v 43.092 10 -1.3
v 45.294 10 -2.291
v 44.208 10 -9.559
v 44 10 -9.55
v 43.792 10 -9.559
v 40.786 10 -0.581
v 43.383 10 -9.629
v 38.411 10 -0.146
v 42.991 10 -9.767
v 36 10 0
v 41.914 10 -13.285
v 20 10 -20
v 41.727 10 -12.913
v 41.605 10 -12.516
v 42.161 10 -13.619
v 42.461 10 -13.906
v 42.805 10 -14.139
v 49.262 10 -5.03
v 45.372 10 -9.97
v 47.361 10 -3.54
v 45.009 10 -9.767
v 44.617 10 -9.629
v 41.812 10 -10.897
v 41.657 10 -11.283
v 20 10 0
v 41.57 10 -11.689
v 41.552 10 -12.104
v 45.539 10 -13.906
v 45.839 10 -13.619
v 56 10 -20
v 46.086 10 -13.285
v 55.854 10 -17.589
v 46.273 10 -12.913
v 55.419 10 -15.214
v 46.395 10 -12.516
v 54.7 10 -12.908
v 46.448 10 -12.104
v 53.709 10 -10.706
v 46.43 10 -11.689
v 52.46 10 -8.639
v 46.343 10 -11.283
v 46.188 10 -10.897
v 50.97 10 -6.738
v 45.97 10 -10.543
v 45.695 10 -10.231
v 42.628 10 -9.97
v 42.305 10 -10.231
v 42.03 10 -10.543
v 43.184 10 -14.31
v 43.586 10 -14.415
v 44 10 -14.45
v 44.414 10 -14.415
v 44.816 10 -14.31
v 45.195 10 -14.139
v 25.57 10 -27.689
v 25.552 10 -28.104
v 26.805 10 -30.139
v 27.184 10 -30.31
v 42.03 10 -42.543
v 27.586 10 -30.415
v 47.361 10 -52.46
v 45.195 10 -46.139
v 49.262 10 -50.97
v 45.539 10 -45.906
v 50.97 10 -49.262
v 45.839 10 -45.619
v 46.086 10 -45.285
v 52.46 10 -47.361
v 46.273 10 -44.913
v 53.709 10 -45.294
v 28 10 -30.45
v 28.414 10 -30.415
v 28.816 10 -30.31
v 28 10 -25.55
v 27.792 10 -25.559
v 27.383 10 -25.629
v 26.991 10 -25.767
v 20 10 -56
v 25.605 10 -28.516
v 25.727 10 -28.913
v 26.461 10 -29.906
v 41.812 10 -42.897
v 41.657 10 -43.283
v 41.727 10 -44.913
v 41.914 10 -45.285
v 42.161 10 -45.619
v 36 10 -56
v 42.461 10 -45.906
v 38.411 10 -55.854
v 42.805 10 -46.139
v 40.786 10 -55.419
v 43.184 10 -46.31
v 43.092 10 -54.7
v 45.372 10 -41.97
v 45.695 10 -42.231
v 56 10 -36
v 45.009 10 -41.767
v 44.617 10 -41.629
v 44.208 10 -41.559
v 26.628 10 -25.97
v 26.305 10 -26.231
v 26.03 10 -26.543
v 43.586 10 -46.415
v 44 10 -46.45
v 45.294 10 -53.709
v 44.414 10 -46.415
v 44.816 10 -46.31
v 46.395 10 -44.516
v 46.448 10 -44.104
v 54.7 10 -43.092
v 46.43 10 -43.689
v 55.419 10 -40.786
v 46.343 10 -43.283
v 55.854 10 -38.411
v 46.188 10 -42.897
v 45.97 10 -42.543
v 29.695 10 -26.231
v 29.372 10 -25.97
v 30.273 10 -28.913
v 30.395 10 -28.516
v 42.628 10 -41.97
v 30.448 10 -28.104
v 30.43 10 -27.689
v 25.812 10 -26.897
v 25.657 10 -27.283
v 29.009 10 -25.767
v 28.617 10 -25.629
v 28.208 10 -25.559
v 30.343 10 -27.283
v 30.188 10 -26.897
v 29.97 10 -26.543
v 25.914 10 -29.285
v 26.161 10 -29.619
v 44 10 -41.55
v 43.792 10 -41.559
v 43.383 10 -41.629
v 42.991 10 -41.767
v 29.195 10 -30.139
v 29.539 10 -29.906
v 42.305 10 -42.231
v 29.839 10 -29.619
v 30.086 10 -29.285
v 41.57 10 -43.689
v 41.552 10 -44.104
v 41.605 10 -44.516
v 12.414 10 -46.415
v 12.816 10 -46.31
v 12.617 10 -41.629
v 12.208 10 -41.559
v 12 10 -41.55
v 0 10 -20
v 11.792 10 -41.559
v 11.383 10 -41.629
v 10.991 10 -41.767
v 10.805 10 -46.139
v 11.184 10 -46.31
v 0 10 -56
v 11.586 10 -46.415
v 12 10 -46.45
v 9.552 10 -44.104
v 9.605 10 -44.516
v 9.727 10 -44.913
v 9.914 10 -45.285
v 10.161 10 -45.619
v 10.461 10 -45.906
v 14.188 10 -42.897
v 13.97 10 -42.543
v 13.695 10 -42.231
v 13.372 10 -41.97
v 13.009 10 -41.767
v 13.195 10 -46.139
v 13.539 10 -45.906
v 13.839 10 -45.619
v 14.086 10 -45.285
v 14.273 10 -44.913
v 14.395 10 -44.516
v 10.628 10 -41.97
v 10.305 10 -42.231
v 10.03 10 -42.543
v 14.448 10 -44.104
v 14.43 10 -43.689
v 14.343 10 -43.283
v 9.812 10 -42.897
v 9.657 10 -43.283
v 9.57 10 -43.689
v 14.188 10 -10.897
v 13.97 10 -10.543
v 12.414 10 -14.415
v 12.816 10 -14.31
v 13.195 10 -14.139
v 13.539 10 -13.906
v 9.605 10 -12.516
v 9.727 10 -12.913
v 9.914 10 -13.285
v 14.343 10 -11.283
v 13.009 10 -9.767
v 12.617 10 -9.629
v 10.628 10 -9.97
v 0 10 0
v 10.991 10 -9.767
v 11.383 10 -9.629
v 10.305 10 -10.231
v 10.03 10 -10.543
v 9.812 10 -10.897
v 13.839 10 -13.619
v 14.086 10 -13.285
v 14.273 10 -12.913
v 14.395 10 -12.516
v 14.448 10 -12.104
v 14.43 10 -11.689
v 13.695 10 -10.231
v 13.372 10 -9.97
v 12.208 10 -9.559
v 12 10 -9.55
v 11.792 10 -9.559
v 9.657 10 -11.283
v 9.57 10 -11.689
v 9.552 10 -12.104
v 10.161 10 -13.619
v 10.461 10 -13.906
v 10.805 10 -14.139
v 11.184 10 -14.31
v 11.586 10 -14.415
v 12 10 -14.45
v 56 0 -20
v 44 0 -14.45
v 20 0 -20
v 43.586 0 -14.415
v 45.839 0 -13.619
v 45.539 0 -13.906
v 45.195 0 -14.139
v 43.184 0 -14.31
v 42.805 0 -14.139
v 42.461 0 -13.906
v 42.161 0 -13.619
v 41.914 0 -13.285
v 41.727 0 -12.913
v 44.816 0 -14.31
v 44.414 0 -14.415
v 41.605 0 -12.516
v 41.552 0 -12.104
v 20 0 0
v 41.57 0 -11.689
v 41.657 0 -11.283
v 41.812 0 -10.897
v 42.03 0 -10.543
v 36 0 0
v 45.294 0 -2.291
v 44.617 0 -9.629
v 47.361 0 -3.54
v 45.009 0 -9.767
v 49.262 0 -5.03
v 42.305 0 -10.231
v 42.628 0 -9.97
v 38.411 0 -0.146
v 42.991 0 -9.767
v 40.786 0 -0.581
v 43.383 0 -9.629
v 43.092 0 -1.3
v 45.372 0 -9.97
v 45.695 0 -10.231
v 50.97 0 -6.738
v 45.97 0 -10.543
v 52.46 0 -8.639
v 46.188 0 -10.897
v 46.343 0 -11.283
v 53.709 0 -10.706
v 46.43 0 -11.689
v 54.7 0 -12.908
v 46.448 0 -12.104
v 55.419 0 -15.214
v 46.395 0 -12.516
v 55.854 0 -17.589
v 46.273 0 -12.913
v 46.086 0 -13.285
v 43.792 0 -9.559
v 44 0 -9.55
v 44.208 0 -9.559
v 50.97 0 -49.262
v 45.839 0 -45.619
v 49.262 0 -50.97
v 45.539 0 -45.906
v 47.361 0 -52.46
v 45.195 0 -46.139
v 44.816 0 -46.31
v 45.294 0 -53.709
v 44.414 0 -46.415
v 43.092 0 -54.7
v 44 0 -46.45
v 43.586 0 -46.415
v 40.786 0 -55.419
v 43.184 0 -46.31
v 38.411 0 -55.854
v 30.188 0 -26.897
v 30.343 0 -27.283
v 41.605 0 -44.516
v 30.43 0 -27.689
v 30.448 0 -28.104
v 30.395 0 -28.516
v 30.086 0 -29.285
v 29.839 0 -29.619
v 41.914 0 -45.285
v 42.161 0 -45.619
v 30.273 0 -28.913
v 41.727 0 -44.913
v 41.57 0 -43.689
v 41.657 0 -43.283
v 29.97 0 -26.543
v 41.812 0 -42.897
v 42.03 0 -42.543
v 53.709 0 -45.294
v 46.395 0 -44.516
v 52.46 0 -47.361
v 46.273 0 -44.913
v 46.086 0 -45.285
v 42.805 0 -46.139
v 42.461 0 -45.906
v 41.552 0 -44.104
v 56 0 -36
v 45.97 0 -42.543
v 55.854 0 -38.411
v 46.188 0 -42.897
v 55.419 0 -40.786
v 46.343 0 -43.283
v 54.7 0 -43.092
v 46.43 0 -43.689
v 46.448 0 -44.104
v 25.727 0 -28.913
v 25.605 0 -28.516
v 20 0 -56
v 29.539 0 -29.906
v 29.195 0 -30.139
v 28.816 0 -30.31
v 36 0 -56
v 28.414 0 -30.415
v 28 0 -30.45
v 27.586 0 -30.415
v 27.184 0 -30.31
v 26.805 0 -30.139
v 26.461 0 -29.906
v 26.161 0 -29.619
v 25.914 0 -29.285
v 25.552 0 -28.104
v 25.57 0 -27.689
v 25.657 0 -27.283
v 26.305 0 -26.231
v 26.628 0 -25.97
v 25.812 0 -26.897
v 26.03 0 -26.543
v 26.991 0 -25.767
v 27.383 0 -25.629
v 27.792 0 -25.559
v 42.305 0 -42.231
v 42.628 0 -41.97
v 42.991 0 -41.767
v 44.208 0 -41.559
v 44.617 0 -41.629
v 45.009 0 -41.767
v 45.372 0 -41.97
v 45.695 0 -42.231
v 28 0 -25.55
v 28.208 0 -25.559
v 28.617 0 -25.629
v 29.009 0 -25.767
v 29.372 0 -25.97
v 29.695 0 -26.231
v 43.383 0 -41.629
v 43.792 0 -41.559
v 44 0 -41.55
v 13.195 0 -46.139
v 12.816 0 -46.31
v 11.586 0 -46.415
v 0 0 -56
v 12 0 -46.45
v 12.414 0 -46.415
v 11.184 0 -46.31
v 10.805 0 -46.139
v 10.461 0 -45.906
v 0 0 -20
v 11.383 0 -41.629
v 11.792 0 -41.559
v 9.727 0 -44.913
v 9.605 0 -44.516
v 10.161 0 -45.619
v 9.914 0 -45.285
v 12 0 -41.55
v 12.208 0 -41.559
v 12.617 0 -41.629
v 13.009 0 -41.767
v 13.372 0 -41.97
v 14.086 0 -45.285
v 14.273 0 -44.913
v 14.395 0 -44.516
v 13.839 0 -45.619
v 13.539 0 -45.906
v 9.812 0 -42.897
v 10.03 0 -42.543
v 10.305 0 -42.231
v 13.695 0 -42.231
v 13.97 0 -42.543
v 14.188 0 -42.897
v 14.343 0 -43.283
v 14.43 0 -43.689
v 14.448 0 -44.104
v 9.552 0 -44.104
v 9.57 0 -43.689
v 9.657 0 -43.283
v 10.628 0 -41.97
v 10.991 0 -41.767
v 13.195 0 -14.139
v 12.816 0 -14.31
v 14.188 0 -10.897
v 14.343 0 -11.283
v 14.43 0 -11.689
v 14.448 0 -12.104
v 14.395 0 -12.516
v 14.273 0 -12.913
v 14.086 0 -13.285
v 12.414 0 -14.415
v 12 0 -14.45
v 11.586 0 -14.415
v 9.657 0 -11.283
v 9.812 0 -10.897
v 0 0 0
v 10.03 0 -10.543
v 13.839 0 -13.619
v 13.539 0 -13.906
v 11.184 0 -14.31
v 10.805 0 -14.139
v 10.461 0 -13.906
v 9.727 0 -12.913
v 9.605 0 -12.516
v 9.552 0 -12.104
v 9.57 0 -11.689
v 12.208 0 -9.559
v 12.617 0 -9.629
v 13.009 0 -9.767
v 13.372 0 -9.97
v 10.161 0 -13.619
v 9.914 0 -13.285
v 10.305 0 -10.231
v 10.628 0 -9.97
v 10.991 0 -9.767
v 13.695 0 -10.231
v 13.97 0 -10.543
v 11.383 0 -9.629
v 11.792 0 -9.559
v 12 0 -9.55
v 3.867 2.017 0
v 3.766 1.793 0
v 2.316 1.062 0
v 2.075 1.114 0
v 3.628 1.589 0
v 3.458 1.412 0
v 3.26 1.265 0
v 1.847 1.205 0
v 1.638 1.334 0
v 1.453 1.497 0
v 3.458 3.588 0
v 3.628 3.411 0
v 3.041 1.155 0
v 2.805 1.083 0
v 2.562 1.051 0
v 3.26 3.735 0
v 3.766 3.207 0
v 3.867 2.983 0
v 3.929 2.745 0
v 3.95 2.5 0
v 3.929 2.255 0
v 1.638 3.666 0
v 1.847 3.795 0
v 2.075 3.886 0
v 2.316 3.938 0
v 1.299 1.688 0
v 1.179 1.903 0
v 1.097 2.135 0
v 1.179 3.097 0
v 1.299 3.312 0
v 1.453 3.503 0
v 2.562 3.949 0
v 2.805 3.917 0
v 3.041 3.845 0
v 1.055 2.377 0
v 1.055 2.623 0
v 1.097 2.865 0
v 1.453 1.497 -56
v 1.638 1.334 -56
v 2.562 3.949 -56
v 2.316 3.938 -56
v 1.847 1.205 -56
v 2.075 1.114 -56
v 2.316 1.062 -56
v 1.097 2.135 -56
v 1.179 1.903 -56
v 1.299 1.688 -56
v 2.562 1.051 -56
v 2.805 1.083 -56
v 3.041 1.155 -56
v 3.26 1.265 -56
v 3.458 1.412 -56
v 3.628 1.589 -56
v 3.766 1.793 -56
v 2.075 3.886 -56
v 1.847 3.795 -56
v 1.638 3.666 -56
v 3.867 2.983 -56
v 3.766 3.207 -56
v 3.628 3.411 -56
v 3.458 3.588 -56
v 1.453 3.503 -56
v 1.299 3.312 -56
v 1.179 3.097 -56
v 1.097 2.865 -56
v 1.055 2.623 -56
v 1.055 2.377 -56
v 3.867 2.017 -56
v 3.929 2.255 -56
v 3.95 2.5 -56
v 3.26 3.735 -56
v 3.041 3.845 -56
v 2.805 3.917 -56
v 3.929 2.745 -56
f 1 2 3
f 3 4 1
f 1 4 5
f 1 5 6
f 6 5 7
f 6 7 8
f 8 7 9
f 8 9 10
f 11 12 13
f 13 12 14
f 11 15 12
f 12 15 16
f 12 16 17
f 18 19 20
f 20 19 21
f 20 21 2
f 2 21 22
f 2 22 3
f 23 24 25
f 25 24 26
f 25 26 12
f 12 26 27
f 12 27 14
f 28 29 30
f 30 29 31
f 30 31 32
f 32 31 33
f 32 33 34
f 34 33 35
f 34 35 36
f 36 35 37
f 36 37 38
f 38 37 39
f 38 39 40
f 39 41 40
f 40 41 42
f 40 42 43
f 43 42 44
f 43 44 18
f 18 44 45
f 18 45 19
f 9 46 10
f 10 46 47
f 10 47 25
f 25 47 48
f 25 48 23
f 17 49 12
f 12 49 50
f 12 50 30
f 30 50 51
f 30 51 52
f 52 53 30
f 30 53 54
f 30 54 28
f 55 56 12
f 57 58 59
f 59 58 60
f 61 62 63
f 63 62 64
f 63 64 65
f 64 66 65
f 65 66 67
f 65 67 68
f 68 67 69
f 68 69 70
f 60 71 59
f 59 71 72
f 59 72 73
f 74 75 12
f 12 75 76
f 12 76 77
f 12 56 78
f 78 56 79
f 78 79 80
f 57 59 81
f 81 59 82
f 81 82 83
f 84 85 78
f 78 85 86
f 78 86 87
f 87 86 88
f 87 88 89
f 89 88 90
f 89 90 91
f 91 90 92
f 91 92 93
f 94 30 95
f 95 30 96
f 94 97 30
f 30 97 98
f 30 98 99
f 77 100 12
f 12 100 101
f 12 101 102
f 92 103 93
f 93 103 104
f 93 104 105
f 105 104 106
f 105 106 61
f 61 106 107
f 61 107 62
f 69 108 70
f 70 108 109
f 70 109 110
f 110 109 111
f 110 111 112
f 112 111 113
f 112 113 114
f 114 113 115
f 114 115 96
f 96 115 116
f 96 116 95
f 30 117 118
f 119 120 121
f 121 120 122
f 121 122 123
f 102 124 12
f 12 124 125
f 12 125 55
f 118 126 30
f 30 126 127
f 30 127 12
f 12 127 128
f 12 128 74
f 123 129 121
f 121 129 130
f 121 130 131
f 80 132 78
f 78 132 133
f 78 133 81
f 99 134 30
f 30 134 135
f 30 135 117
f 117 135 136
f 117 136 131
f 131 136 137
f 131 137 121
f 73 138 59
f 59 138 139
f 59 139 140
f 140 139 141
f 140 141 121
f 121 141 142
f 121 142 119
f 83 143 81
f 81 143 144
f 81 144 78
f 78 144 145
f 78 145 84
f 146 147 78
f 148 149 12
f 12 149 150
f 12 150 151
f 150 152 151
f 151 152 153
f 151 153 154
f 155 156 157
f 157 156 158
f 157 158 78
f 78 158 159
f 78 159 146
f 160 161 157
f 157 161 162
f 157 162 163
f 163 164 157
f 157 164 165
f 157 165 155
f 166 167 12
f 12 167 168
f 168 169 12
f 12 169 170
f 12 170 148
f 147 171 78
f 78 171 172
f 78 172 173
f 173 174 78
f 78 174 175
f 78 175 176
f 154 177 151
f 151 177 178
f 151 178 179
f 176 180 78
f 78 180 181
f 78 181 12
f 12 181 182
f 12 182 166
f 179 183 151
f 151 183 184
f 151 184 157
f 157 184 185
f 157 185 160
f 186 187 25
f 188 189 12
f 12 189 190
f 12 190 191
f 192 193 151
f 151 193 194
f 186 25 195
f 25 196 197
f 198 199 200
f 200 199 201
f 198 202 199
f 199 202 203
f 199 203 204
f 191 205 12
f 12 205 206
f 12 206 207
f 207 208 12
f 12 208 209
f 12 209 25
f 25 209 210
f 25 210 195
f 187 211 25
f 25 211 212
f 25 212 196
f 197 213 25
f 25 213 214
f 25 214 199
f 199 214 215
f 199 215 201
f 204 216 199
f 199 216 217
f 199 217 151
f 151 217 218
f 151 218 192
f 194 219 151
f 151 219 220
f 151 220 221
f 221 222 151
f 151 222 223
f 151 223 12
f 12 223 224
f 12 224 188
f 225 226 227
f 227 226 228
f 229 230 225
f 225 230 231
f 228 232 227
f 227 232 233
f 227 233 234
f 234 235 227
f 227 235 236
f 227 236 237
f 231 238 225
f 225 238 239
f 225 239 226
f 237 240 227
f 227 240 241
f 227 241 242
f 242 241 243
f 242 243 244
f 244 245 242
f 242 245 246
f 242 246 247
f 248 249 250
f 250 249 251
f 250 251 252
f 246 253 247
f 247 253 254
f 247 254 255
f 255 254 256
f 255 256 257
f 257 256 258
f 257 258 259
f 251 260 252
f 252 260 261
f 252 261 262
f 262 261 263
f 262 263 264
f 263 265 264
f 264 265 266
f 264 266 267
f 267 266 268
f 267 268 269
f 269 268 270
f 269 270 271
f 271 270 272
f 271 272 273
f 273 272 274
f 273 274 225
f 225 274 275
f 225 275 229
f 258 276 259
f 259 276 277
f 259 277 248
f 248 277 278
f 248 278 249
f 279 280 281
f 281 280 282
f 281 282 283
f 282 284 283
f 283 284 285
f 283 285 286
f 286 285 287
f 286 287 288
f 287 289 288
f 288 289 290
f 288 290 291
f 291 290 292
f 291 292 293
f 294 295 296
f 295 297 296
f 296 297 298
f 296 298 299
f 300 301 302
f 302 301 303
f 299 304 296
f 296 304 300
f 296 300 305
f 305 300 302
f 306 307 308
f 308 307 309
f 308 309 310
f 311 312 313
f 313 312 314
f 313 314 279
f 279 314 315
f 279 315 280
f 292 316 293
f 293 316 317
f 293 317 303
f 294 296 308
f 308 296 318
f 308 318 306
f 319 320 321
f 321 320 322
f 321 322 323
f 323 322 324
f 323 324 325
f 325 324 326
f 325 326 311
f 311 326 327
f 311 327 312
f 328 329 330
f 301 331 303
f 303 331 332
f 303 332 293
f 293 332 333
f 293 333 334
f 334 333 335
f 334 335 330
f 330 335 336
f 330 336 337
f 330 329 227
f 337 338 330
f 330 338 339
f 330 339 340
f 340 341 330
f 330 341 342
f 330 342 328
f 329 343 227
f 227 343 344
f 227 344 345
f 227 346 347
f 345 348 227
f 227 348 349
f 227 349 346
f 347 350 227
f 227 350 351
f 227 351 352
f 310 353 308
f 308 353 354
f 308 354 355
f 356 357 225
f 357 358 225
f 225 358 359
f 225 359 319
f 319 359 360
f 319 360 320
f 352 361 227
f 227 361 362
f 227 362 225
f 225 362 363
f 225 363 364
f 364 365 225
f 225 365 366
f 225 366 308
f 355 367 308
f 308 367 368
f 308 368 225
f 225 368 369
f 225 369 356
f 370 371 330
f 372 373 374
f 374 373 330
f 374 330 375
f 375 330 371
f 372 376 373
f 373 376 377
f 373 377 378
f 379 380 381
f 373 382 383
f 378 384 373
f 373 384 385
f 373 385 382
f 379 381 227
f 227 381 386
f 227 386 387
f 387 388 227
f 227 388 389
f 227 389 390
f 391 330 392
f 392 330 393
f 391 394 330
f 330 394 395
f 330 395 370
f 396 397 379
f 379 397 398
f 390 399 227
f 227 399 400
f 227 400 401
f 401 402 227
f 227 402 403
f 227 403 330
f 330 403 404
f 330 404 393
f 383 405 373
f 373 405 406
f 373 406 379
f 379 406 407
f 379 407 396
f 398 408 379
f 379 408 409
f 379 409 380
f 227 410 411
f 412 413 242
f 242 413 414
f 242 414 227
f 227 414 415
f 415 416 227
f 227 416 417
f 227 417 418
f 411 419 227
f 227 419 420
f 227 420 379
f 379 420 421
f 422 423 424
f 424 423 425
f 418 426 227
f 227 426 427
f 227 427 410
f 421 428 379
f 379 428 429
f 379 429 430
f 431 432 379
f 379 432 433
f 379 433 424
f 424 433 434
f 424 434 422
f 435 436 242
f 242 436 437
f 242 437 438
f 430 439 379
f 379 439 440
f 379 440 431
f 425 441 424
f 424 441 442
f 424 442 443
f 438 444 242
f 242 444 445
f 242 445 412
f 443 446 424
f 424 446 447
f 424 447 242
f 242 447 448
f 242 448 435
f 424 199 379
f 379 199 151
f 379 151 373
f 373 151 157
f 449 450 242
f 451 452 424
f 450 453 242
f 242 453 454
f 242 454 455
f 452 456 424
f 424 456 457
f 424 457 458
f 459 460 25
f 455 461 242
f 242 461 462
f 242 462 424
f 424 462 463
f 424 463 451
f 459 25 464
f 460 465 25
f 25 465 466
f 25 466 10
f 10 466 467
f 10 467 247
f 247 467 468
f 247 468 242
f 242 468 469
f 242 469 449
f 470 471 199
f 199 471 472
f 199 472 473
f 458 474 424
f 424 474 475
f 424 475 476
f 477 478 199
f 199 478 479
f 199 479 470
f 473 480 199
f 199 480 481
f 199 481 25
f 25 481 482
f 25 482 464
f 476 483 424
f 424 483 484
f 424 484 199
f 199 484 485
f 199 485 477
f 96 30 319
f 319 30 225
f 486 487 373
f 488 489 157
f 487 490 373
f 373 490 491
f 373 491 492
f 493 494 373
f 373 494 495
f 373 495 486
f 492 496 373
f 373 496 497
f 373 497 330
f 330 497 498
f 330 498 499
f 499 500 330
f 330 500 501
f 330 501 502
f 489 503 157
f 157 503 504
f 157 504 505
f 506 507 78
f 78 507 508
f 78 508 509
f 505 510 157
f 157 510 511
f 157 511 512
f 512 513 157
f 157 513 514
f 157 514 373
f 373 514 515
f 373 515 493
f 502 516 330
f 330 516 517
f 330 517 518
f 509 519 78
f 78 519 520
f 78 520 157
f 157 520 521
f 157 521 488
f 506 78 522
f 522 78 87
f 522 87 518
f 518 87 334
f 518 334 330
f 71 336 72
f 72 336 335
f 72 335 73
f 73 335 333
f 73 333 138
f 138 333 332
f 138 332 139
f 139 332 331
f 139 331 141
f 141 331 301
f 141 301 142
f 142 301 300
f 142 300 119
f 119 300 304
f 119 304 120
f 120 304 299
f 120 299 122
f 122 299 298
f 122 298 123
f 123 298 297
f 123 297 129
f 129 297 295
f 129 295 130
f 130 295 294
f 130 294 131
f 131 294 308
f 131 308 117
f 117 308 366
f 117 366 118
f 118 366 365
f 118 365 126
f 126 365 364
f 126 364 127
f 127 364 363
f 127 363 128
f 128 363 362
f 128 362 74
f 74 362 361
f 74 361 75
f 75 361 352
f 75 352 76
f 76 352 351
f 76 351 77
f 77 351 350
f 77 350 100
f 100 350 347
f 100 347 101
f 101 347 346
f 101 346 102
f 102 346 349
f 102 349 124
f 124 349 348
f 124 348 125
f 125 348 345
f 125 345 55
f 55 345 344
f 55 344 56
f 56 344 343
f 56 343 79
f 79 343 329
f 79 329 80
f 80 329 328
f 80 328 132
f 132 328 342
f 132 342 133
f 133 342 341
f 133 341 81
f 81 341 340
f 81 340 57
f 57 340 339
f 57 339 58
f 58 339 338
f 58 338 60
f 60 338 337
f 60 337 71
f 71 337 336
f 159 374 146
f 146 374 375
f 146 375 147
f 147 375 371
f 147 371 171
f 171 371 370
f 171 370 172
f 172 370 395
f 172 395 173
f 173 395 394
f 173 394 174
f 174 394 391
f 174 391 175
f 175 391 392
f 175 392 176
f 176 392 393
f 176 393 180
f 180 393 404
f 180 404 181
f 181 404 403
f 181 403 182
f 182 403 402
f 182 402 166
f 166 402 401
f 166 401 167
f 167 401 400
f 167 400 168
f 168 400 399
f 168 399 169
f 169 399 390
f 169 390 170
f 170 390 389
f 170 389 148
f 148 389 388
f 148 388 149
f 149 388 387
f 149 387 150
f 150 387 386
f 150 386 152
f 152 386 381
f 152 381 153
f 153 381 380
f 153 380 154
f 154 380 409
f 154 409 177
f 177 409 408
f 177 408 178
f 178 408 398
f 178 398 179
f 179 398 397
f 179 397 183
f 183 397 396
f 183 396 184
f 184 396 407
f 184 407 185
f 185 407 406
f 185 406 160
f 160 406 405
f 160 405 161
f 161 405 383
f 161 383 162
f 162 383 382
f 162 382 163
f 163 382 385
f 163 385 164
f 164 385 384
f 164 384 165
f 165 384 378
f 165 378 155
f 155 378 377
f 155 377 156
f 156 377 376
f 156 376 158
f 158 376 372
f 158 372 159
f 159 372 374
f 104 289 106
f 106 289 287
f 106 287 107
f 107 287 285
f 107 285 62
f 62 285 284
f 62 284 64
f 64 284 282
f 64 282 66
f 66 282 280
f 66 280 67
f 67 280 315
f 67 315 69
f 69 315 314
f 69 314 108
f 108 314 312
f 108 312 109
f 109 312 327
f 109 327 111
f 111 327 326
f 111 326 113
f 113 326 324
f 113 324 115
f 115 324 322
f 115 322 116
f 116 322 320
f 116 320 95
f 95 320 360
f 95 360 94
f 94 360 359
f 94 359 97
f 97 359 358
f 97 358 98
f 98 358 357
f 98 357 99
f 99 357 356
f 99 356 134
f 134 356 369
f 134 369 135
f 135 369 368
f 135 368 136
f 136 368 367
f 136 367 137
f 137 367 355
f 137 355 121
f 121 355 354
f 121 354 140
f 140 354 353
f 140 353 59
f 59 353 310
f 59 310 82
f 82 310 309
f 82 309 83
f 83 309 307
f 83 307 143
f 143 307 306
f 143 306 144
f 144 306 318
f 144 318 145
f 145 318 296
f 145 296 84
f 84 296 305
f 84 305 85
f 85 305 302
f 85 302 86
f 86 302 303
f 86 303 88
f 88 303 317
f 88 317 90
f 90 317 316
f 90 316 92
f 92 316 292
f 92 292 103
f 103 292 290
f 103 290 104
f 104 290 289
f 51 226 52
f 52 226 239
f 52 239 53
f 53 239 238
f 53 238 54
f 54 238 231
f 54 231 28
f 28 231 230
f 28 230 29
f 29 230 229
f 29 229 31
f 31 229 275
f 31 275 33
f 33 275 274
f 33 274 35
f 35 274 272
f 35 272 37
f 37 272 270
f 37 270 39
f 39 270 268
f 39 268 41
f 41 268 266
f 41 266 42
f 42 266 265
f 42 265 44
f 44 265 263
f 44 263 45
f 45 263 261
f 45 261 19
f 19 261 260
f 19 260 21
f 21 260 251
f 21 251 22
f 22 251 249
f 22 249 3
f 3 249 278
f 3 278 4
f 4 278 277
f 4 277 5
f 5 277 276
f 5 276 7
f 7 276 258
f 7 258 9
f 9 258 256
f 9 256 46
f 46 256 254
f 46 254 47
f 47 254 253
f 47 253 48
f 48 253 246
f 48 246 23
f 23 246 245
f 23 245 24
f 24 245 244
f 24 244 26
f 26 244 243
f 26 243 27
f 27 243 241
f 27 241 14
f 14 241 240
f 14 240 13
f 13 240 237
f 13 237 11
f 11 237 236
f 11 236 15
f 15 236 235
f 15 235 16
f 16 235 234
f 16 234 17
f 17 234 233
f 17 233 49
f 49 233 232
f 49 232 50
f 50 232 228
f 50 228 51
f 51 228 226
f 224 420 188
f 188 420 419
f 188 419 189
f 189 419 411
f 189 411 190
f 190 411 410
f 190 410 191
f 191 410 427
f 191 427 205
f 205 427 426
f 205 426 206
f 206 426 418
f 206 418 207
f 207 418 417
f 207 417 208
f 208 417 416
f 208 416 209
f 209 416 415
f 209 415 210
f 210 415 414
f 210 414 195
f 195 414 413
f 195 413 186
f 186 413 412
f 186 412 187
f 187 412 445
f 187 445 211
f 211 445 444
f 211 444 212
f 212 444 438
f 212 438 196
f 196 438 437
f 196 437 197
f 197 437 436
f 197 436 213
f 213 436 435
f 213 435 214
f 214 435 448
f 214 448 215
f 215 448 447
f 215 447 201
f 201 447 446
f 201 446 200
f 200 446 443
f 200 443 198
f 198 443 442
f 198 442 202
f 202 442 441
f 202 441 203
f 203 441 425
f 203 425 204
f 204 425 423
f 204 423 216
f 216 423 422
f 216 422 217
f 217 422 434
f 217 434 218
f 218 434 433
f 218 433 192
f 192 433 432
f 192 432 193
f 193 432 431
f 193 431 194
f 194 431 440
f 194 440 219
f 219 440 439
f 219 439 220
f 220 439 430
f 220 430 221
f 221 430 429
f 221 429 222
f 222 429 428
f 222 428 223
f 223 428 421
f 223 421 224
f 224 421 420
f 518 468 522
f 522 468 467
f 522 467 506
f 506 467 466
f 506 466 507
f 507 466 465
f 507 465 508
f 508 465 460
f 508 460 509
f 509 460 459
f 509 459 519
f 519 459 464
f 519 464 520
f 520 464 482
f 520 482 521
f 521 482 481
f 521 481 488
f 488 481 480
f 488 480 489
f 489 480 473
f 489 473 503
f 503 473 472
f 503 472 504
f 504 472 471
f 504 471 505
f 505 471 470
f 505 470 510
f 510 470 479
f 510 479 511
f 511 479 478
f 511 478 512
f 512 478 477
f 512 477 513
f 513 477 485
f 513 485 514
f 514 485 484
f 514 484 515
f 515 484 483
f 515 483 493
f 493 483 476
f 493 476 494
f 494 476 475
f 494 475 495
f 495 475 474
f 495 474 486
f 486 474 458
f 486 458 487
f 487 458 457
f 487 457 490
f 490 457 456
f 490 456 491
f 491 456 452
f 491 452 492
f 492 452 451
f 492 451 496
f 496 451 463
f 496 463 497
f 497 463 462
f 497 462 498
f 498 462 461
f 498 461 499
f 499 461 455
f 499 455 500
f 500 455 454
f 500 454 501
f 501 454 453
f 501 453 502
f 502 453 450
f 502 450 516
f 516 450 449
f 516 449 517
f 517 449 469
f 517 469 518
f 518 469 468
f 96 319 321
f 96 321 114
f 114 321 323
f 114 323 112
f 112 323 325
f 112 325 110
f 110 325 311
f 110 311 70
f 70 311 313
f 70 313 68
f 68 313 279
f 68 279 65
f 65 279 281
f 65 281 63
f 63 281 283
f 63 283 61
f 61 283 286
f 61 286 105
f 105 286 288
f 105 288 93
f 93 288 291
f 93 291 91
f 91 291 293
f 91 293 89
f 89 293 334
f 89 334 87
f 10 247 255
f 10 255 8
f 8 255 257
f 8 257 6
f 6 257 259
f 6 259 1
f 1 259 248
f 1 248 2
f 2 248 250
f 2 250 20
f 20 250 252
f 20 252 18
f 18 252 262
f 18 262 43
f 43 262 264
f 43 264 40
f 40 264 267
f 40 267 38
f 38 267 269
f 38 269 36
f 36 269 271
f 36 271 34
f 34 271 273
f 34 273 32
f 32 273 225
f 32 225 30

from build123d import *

# Parameters (mm, degrees)
SKETCH1_W           = 56
SKETCH1_H           = 56
SKETCH1_R           = 2.45
BOSS_EXTRUDE1_DEPTH = 10
SKETCH2_R           = 1.45
CUT_EXTRUDE1_DEPTH  = 80.824808174
FILLET1_R           = 20


with BuildPart() as part:
    # Sketch1 → Boss-Extrude1 (new body)
    with BuildSketch(Plane(origin=(0, 0, 0), x_dir=(1, 0, 0), z_dir=(0, 1, 0))):
        with Locations((28, 28)):
            Rectangle(SKETCH1_W, SKETCH1_H)
        with Locations(Location((28, 28, 0), (0, 0, 270))):
            Circle(SKETCH1_R, mode=Mode.SUBTRACT)
        with Locations(Location((12, 44, 0), (0, 0, 270))):
            Circle(SKETCH1_R, mode=Mode.SUBTRACT)
        with Locations(Location((44, 44, 0), (0, 0, 270))):
            Circle(SKETCH1_R, mode=Mode.SUBTRACT)
        with Locations(Location((44, 12, 0), (0, 0, 270))):
            Circle(SKETCH1_R, mode=Mode.SUBTRACT)
        with Locations(Location((12, 12, 0), (0, 0, 270))):
            Circle(SKETCH1_R, mode=Mode.SUBTRACT)
    extrude(amount=BOSS_EXTRUDE1_DEPTH)

    # Sketch2 → Cut-Extrude1 (cut, through all)
    with BuildSketch(Plane.XY):
        with Locations((2.5, 2.5)):
            Circle(SKETCH2_R)
    extrude(amount=-CUT_EXTRUDE1_DEPTH, mode=Mode.SUBTRACT)

    # Fillet1
    fillet1_edges = [part.edges().sort_by_distance(p)[0] for p in [
        (56, 5, -56),
        (56, 5, 0),
    ]]
    fillet(fillet1_edges, radius=FILLET1_R)


solid = part.part
